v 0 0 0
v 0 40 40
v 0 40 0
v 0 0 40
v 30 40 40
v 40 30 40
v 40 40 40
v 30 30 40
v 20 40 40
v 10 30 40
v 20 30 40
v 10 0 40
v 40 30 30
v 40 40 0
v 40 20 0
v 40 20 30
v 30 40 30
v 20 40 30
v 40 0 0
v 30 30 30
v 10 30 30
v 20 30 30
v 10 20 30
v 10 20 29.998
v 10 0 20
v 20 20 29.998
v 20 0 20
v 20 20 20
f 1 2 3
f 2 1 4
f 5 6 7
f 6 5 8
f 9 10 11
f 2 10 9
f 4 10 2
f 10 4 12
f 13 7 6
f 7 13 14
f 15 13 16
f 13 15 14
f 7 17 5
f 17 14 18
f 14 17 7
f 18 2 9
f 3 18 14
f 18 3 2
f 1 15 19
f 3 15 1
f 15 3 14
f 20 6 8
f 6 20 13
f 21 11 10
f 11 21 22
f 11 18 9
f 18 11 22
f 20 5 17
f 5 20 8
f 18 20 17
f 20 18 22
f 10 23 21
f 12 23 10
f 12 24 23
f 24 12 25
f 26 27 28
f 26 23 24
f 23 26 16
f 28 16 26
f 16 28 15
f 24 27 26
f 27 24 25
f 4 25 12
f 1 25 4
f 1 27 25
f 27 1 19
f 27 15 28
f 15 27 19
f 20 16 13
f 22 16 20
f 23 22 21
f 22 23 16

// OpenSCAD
 translate([20, 0, 0])  

 difference(){
   cube([20,20,20]);  
  translate([20, 0, 0])  
   rotate([0, -45, 0])
  cube([20,20,40]);
  } 


cube([10,40,40]);
translate([10, 20, 0])
cube([30,10,30]);
translate([10, 0, 0])
cube([10,20,20]);

difference(){
    
translate([0, 30, 0])
cube([40,10,40]);
  translate([20, 30, 30])
cube([10,10,10]);  
}
   // Plano inclinado 2
  translate([10, 0, 20]) 
  difference(){
   cube([10,20,10]);  
      rotate([26.56, 0, 0])
  cube([10,30,10]);  
  }
  
 

  
